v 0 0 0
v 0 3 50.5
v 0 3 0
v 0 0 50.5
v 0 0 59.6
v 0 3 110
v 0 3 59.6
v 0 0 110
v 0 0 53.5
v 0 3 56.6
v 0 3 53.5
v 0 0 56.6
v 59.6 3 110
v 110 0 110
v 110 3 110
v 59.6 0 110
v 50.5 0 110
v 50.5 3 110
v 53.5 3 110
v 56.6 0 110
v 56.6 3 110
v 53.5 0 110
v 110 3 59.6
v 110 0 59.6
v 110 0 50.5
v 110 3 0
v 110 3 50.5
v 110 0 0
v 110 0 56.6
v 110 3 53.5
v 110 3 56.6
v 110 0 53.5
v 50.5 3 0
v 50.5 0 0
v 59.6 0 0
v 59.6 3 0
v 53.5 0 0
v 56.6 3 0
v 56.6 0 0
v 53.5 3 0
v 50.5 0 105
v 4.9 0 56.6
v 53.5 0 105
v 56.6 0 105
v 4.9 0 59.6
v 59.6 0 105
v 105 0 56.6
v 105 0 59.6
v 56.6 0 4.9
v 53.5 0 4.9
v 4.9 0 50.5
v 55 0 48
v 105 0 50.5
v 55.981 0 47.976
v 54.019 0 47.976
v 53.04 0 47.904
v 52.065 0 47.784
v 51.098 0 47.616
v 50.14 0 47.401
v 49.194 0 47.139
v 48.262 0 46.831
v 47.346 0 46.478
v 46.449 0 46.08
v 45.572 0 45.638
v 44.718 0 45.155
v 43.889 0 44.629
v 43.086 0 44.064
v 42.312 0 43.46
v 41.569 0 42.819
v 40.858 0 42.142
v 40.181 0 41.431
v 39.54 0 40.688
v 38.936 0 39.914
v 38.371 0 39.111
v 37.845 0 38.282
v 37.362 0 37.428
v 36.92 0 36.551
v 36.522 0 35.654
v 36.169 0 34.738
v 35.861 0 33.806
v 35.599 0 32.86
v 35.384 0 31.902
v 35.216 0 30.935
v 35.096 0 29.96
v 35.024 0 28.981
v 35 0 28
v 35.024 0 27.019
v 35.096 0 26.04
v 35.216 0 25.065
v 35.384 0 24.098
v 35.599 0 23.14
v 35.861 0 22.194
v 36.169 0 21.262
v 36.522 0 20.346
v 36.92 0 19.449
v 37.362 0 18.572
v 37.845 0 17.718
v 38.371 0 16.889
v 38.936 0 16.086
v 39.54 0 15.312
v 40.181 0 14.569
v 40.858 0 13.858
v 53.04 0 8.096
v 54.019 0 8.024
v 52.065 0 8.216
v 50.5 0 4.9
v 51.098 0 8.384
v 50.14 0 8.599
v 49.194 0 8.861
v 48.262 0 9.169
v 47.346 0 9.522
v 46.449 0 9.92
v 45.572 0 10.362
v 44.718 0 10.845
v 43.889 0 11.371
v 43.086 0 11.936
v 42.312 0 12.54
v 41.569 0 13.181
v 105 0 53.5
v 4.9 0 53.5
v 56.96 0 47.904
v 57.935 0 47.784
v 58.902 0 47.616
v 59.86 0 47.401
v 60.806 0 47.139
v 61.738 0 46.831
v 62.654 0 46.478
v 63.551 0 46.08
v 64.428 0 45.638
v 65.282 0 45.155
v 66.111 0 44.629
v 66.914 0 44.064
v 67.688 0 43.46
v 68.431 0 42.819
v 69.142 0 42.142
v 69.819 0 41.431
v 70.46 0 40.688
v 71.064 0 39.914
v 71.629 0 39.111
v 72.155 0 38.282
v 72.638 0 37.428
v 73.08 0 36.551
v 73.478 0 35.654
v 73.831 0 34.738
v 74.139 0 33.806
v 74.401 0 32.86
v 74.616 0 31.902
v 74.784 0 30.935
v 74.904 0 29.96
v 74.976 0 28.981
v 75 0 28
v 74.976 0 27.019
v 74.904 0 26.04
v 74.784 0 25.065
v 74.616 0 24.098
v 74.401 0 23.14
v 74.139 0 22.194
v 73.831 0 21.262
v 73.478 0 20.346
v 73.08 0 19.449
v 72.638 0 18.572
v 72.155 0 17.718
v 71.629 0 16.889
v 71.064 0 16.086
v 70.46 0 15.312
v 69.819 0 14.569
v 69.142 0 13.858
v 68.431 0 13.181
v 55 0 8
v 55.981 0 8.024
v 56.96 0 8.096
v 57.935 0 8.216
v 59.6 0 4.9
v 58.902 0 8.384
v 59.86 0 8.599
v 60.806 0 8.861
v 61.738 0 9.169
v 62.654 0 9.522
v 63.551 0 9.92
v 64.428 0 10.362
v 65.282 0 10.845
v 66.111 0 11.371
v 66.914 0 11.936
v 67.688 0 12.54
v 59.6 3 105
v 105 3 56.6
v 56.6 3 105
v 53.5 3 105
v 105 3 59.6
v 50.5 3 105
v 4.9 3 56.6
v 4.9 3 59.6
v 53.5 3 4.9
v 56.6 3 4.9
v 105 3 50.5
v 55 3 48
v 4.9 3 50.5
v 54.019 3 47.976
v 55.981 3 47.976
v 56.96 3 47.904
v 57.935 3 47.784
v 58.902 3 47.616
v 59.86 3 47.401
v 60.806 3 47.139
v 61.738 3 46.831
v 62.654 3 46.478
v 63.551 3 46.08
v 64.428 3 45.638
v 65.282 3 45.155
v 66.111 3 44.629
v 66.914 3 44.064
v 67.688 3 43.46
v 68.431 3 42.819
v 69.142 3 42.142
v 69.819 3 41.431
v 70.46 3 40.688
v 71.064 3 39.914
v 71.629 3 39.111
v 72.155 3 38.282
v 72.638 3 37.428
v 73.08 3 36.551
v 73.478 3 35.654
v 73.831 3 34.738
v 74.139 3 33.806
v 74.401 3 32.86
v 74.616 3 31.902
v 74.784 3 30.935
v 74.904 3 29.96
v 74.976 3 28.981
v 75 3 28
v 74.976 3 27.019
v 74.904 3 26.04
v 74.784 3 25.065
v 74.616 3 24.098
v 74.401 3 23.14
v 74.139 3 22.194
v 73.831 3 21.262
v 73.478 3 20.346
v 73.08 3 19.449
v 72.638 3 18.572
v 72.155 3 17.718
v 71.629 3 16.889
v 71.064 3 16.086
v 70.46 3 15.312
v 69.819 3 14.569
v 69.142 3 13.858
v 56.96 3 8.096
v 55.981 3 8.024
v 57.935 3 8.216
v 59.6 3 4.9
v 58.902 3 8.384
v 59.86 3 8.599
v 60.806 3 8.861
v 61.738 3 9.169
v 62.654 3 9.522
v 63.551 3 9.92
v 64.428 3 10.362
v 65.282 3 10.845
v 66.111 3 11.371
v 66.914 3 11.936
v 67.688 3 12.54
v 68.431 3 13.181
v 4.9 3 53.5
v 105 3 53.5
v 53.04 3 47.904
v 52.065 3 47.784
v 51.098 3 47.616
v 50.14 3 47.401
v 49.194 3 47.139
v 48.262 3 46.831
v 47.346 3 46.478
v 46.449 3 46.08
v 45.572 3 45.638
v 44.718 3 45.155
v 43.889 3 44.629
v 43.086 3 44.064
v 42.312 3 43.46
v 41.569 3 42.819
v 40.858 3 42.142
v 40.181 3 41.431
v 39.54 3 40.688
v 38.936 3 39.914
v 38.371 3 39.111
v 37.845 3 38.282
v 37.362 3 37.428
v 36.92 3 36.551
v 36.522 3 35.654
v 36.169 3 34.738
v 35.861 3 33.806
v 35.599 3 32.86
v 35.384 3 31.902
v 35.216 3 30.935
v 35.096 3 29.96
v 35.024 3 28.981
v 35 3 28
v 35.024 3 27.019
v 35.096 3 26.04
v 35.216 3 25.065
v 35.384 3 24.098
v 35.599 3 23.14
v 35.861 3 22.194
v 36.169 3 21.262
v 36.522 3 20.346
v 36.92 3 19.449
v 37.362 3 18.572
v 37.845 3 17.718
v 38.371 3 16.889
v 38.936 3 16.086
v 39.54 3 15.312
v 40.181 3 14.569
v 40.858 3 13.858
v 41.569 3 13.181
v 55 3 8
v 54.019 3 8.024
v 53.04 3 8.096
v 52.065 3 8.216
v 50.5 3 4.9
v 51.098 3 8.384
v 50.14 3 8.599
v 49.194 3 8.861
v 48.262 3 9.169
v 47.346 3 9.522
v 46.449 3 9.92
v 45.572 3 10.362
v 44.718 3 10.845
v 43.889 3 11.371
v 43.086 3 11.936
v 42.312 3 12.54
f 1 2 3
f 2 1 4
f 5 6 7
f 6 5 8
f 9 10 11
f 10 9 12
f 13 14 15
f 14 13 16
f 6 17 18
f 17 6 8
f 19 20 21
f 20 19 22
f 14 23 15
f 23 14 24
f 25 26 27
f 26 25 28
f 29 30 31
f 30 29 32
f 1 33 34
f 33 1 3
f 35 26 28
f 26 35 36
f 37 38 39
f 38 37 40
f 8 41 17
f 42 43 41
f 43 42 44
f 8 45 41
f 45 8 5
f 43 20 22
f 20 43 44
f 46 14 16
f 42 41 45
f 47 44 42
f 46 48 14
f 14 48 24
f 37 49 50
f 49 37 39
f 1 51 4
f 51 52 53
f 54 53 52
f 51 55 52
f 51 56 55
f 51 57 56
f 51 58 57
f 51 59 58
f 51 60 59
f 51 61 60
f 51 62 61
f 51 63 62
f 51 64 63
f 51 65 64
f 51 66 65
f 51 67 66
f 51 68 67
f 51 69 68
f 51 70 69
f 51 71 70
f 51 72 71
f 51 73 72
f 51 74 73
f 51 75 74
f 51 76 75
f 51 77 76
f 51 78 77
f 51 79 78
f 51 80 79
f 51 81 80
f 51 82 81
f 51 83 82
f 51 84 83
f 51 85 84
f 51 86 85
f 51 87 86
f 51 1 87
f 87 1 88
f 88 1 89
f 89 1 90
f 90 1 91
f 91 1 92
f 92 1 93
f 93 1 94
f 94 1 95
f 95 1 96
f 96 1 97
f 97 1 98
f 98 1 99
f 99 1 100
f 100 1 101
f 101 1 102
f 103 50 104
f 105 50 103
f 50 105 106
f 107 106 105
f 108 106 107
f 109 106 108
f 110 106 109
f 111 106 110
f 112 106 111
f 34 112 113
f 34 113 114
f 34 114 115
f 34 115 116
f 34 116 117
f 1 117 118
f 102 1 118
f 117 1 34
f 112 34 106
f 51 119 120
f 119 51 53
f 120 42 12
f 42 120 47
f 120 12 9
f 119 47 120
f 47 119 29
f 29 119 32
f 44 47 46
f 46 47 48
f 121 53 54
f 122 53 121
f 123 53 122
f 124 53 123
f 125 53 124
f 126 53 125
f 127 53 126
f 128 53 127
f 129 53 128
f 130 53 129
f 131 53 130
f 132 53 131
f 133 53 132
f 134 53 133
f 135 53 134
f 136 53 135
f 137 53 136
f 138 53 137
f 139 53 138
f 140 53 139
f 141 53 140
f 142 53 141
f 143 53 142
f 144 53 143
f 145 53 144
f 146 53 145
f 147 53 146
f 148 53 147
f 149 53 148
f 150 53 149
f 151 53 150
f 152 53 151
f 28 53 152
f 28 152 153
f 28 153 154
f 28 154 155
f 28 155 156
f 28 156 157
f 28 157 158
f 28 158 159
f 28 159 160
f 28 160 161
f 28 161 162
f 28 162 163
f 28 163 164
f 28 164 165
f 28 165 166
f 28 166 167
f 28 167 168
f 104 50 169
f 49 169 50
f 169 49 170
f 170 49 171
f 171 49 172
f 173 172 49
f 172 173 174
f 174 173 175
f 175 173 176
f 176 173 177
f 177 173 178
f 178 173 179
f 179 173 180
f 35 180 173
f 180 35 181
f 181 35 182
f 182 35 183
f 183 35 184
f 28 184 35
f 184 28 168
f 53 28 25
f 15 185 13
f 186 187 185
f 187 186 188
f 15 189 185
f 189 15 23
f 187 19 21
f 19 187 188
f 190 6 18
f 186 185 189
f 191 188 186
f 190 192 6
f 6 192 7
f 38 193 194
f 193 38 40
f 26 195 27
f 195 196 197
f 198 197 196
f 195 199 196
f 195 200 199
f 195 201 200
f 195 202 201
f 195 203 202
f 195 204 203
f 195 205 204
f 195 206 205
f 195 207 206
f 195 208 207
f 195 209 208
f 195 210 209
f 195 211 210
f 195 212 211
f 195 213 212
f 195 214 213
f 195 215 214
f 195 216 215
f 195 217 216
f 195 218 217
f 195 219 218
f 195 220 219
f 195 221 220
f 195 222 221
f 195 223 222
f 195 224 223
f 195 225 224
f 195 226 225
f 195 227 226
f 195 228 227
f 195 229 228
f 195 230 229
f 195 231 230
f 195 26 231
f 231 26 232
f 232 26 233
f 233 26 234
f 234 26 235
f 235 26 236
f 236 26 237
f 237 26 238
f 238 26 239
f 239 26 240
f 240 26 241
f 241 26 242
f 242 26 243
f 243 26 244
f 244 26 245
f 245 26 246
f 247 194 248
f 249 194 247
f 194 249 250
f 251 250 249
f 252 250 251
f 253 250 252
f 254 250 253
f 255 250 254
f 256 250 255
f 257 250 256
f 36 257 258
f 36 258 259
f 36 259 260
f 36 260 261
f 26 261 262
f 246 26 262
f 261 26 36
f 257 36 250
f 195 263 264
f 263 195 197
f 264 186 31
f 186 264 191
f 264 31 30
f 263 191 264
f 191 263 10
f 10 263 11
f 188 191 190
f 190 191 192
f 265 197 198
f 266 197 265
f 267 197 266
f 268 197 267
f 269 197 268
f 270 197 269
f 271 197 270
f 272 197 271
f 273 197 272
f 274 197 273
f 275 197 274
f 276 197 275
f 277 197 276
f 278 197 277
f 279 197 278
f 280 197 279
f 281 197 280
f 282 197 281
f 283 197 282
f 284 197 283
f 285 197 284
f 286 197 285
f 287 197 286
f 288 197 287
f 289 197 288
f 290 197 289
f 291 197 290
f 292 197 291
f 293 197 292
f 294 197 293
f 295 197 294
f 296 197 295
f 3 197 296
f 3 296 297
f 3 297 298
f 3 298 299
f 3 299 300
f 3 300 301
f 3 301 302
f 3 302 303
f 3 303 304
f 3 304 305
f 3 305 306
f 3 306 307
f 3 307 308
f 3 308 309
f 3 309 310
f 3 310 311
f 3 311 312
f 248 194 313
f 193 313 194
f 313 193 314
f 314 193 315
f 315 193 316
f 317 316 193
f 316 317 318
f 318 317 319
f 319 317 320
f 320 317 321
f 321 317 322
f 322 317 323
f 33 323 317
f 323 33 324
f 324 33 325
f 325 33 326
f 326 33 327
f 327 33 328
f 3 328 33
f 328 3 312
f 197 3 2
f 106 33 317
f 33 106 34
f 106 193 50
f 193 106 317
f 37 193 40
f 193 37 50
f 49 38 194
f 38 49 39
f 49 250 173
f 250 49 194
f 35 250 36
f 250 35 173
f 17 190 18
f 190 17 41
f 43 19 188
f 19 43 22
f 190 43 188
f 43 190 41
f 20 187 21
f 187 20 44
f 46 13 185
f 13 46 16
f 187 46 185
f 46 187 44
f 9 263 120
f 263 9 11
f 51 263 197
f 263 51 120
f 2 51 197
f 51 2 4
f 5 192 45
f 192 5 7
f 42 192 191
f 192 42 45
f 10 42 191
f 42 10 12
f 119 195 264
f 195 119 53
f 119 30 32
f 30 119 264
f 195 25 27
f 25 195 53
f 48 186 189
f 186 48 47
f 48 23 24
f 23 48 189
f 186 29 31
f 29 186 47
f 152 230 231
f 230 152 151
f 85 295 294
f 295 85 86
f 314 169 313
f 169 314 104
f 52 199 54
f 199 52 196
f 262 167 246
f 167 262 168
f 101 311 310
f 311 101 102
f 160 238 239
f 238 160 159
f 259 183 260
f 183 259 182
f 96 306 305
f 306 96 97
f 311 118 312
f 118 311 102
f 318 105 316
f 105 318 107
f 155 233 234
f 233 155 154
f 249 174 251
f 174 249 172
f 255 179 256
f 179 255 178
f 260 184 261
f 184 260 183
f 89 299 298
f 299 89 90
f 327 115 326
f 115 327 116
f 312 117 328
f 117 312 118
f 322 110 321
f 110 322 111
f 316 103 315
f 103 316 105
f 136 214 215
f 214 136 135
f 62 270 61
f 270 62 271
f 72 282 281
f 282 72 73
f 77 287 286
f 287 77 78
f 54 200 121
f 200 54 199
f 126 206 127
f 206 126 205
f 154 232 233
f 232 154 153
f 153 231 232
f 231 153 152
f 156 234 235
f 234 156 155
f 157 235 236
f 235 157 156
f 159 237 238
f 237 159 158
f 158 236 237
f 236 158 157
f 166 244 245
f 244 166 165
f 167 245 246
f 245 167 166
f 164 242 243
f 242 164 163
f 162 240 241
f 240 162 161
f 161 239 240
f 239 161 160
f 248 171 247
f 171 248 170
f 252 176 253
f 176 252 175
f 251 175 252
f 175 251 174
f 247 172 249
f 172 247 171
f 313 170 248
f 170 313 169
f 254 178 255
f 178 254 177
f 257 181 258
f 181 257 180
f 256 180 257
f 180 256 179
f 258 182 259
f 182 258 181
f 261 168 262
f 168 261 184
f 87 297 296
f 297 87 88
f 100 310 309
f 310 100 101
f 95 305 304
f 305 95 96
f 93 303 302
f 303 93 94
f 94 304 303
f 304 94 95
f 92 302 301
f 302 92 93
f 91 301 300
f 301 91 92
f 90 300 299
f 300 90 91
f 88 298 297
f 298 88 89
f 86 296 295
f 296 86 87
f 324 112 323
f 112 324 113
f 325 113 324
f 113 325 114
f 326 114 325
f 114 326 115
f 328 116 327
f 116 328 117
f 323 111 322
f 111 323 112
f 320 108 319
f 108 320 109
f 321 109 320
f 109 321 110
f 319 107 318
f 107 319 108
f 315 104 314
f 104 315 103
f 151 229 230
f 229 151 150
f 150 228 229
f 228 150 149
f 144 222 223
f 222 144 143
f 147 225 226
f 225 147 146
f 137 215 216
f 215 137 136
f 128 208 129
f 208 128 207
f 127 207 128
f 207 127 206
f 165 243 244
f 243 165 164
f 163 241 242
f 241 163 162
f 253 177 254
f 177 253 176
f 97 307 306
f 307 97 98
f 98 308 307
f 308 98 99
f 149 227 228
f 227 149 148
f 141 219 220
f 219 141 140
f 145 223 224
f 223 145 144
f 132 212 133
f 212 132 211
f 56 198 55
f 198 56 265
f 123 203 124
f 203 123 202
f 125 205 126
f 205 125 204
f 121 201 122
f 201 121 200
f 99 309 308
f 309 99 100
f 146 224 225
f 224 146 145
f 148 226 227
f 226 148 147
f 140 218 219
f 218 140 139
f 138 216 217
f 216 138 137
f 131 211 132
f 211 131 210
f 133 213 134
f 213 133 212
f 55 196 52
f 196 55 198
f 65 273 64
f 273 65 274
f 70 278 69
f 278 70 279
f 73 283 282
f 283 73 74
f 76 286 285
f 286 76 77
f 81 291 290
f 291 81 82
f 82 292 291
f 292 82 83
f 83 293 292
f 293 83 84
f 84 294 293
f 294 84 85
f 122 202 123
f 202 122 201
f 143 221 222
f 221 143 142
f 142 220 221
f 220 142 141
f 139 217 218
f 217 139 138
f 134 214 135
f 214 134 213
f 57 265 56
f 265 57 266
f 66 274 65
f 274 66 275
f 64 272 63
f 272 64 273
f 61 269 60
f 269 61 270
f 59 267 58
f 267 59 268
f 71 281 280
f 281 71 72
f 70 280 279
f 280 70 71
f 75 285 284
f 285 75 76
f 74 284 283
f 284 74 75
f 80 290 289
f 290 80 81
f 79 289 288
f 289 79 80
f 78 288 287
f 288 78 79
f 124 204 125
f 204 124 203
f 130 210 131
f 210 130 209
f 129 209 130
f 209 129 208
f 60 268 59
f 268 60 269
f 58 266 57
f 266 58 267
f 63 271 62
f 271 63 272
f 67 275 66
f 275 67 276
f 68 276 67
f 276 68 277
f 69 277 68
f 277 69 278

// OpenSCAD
// ============================================================
// Hamster Habitat — Kapı Paneli
// 110x3x110mm, merkez 80mm delik (tünel geçişi / kapı)
// ============================================================
$fn = 128;

module panel_kapi() {
  color("lightyellow", 0.9)
  difference() {
    cube([110, 3, 110]);
    // 4 kenar — 2x notch (n1~36.7, n2~73.3 merkez)
    // 4 kenar — ikili notch kumesi (3mm aralik, merkez 55mm)
    translate([50.5, -0.1,  -0.1]) cube([3, 3.2, 5]);   // alt 1
    translate([56.6, -0.1,  -0.1]) cube([3, 3.2, 5]);   // alt 2
    translate([50.5, -0.1,   105]) cube([3, 3.2, 5]);   // ust 1
    translate([56.6, -0.1,   105]) cube([3, 3.2, 5]);   // ust 2
    translate([ -0.1, -0.1, 50.5]) cube([5, 3.2, 3]);   // sol 1
    translate([ -0.1, -0.1, 56.6]) cube([5, 3.2, 3]);   // sol 2
    translate([  105, -0.1, 50.5]) cube([5, 3.2, 3]);   // sag 1
    translate([  105, -0.1, 56.6]) cube([5, 3.2, 3]);   // sag 2
    // 40mm kapi deligi, merkez Z=28 (alt kenara 8mm bosluk, notch rasina mesafe)
    translate([55, -0.1, 28]) rotate([-90, 0, 0]) cylinder(r=20, h=3.2);
  }
}

panel_kapi();
